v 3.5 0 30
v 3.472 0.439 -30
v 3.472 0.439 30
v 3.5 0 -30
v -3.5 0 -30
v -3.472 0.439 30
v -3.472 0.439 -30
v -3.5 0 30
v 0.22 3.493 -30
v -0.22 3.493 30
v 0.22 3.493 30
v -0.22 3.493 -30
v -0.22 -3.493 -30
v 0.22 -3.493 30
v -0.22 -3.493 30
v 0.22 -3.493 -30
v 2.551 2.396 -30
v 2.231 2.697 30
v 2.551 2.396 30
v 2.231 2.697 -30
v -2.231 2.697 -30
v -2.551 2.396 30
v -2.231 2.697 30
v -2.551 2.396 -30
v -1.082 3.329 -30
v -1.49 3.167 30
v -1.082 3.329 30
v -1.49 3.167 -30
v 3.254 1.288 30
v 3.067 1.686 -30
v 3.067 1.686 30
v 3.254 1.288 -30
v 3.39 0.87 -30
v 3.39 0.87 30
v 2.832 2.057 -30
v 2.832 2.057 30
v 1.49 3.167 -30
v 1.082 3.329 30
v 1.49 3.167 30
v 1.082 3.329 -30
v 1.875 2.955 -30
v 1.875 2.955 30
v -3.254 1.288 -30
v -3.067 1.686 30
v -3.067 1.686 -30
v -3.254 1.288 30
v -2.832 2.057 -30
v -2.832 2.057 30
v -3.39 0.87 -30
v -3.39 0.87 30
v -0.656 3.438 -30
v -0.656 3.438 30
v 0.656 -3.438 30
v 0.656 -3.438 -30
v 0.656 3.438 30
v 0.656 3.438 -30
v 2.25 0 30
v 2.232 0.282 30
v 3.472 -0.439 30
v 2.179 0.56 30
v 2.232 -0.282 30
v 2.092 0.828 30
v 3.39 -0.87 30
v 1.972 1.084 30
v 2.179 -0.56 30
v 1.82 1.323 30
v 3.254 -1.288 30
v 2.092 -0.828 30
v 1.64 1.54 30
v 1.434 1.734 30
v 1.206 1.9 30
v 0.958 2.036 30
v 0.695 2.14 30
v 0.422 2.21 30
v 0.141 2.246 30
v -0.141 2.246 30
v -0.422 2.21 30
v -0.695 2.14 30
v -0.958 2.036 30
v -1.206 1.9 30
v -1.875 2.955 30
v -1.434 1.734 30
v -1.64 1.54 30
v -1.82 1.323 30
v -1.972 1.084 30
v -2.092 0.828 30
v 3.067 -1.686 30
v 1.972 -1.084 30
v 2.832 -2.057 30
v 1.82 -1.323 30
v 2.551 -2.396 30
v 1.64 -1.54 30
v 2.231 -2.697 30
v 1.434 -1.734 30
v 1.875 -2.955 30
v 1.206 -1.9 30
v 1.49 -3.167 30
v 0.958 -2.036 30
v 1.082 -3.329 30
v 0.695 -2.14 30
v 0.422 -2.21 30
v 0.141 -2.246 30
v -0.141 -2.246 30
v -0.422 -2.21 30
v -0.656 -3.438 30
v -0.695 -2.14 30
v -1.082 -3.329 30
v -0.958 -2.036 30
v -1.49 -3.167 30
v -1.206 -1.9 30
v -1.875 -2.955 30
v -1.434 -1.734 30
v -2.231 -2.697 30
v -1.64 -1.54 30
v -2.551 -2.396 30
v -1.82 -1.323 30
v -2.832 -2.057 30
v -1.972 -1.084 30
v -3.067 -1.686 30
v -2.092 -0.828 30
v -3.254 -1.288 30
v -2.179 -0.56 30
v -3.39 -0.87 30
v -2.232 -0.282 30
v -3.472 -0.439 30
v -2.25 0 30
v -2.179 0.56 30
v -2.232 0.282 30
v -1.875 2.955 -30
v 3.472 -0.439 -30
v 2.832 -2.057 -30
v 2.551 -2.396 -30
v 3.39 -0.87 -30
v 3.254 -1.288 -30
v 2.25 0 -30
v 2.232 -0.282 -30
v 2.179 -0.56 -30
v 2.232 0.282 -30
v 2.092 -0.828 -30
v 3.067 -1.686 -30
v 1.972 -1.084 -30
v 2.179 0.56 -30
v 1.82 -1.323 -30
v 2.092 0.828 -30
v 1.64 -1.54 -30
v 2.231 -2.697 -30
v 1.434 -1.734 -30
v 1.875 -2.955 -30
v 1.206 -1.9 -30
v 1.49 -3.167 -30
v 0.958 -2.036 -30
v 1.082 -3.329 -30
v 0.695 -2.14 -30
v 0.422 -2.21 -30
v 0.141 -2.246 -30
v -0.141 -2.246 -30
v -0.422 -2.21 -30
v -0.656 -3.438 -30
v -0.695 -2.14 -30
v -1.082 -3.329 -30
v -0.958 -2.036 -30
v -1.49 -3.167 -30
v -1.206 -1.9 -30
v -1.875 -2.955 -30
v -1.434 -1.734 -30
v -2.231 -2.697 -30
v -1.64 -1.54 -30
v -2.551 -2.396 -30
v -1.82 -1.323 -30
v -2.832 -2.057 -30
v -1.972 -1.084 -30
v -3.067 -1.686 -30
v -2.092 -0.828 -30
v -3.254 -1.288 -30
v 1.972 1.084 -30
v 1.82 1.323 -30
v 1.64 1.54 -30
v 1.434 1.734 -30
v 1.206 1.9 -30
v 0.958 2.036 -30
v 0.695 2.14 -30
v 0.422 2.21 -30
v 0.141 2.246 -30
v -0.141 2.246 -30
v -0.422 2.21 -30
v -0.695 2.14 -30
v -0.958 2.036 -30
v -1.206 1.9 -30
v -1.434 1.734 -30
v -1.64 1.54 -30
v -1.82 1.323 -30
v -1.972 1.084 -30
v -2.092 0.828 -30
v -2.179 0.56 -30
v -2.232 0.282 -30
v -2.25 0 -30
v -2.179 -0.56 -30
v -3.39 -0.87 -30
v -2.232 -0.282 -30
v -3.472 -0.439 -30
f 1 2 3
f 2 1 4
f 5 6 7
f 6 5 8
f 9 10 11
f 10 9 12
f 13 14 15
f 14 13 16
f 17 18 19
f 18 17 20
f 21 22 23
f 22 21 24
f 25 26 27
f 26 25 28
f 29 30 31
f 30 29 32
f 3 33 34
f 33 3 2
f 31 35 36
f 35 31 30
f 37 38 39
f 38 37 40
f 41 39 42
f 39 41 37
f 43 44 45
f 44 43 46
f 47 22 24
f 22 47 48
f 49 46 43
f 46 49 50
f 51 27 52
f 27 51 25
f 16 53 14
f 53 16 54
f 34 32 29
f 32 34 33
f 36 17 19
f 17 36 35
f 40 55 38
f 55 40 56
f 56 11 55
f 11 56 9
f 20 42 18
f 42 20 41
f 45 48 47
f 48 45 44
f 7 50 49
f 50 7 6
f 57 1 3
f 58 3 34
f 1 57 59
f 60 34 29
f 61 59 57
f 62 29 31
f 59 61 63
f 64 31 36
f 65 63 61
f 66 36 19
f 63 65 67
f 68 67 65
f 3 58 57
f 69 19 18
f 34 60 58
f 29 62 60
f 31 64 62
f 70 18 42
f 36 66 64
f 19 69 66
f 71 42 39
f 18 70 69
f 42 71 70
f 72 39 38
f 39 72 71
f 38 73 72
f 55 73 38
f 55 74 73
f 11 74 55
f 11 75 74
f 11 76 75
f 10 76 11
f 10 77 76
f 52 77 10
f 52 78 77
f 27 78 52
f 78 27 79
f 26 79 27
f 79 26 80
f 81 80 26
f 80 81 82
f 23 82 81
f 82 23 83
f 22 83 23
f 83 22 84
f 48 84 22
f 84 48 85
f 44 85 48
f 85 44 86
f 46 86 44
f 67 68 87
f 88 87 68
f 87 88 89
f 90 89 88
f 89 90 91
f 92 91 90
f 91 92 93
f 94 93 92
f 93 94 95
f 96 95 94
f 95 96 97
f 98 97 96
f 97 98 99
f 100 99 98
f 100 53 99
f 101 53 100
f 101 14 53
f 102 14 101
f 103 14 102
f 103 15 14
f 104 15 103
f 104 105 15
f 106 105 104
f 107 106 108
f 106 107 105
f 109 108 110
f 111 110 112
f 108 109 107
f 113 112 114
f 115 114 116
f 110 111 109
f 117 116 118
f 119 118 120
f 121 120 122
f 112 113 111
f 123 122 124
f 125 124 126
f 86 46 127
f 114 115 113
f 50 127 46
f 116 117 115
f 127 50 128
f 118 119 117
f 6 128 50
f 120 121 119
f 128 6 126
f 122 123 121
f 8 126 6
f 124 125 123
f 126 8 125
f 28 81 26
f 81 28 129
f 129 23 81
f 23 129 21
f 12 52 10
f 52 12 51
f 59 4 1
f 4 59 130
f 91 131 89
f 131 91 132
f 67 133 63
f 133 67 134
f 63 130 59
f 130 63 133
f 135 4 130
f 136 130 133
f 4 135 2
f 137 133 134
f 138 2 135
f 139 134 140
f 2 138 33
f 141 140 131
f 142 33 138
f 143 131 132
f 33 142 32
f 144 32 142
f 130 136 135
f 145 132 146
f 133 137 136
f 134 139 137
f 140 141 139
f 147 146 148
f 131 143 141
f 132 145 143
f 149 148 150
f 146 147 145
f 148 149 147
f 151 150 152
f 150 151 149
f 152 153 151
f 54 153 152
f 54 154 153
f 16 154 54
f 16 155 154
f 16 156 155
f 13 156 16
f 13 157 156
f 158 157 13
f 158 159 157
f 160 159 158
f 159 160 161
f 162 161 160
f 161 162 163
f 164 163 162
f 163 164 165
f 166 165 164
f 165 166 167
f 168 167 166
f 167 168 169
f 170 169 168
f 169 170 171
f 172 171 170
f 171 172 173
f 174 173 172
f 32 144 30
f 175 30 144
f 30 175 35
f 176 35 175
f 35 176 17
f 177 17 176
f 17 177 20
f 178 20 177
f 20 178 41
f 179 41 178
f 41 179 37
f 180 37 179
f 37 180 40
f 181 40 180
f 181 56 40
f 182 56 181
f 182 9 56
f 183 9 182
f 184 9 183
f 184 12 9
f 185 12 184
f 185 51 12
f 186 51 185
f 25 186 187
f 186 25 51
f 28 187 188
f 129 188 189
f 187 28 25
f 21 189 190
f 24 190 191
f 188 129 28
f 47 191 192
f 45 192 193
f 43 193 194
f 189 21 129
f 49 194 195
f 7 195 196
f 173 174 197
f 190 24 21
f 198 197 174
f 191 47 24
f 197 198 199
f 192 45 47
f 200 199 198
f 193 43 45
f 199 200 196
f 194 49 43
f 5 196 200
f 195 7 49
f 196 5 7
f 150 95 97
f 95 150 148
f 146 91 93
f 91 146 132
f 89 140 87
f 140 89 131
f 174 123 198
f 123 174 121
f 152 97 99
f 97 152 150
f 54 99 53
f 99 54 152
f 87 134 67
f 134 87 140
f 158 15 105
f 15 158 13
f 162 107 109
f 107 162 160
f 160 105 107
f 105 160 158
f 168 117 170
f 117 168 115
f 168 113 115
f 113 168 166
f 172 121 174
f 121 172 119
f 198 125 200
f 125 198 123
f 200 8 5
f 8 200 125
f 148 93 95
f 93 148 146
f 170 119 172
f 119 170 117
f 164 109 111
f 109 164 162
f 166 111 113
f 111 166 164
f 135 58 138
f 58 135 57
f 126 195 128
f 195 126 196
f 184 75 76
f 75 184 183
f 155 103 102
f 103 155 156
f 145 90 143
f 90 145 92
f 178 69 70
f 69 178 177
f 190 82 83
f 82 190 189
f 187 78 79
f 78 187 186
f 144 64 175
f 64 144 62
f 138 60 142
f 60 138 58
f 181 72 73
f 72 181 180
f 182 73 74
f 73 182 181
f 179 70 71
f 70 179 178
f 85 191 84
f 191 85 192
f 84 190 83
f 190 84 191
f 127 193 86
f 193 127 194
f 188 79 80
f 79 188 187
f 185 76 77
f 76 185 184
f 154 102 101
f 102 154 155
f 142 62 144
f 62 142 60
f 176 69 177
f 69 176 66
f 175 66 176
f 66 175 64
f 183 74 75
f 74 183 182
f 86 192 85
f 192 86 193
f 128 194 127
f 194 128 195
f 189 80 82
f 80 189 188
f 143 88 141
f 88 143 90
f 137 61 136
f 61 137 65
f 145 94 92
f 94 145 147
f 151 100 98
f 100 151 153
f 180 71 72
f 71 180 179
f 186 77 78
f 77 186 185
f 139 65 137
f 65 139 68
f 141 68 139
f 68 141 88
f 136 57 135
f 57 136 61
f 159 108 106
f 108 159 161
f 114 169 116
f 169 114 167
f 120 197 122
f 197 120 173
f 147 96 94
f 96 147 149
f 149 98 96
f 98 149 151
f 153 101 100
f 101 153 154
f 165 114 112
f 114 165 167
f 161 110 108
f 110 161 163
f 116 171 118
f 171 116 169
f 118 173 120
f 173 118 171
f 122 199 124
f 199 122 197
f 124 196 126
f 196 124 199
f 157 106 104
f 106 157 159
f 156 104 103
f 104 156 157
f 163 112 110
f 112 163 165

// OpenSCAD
$fn = 50;


difference() {
	union() {
		translate(v = [0, 0, -30.0000000000]) {
			cylinder(h = 60, r = 3.5000000000);
		}
	}
	union() {
		translate(v = [0, 0, -100.0000000000]) {
			cylinder(h = 200, r = 2.2500000000);
		}
	}
}
